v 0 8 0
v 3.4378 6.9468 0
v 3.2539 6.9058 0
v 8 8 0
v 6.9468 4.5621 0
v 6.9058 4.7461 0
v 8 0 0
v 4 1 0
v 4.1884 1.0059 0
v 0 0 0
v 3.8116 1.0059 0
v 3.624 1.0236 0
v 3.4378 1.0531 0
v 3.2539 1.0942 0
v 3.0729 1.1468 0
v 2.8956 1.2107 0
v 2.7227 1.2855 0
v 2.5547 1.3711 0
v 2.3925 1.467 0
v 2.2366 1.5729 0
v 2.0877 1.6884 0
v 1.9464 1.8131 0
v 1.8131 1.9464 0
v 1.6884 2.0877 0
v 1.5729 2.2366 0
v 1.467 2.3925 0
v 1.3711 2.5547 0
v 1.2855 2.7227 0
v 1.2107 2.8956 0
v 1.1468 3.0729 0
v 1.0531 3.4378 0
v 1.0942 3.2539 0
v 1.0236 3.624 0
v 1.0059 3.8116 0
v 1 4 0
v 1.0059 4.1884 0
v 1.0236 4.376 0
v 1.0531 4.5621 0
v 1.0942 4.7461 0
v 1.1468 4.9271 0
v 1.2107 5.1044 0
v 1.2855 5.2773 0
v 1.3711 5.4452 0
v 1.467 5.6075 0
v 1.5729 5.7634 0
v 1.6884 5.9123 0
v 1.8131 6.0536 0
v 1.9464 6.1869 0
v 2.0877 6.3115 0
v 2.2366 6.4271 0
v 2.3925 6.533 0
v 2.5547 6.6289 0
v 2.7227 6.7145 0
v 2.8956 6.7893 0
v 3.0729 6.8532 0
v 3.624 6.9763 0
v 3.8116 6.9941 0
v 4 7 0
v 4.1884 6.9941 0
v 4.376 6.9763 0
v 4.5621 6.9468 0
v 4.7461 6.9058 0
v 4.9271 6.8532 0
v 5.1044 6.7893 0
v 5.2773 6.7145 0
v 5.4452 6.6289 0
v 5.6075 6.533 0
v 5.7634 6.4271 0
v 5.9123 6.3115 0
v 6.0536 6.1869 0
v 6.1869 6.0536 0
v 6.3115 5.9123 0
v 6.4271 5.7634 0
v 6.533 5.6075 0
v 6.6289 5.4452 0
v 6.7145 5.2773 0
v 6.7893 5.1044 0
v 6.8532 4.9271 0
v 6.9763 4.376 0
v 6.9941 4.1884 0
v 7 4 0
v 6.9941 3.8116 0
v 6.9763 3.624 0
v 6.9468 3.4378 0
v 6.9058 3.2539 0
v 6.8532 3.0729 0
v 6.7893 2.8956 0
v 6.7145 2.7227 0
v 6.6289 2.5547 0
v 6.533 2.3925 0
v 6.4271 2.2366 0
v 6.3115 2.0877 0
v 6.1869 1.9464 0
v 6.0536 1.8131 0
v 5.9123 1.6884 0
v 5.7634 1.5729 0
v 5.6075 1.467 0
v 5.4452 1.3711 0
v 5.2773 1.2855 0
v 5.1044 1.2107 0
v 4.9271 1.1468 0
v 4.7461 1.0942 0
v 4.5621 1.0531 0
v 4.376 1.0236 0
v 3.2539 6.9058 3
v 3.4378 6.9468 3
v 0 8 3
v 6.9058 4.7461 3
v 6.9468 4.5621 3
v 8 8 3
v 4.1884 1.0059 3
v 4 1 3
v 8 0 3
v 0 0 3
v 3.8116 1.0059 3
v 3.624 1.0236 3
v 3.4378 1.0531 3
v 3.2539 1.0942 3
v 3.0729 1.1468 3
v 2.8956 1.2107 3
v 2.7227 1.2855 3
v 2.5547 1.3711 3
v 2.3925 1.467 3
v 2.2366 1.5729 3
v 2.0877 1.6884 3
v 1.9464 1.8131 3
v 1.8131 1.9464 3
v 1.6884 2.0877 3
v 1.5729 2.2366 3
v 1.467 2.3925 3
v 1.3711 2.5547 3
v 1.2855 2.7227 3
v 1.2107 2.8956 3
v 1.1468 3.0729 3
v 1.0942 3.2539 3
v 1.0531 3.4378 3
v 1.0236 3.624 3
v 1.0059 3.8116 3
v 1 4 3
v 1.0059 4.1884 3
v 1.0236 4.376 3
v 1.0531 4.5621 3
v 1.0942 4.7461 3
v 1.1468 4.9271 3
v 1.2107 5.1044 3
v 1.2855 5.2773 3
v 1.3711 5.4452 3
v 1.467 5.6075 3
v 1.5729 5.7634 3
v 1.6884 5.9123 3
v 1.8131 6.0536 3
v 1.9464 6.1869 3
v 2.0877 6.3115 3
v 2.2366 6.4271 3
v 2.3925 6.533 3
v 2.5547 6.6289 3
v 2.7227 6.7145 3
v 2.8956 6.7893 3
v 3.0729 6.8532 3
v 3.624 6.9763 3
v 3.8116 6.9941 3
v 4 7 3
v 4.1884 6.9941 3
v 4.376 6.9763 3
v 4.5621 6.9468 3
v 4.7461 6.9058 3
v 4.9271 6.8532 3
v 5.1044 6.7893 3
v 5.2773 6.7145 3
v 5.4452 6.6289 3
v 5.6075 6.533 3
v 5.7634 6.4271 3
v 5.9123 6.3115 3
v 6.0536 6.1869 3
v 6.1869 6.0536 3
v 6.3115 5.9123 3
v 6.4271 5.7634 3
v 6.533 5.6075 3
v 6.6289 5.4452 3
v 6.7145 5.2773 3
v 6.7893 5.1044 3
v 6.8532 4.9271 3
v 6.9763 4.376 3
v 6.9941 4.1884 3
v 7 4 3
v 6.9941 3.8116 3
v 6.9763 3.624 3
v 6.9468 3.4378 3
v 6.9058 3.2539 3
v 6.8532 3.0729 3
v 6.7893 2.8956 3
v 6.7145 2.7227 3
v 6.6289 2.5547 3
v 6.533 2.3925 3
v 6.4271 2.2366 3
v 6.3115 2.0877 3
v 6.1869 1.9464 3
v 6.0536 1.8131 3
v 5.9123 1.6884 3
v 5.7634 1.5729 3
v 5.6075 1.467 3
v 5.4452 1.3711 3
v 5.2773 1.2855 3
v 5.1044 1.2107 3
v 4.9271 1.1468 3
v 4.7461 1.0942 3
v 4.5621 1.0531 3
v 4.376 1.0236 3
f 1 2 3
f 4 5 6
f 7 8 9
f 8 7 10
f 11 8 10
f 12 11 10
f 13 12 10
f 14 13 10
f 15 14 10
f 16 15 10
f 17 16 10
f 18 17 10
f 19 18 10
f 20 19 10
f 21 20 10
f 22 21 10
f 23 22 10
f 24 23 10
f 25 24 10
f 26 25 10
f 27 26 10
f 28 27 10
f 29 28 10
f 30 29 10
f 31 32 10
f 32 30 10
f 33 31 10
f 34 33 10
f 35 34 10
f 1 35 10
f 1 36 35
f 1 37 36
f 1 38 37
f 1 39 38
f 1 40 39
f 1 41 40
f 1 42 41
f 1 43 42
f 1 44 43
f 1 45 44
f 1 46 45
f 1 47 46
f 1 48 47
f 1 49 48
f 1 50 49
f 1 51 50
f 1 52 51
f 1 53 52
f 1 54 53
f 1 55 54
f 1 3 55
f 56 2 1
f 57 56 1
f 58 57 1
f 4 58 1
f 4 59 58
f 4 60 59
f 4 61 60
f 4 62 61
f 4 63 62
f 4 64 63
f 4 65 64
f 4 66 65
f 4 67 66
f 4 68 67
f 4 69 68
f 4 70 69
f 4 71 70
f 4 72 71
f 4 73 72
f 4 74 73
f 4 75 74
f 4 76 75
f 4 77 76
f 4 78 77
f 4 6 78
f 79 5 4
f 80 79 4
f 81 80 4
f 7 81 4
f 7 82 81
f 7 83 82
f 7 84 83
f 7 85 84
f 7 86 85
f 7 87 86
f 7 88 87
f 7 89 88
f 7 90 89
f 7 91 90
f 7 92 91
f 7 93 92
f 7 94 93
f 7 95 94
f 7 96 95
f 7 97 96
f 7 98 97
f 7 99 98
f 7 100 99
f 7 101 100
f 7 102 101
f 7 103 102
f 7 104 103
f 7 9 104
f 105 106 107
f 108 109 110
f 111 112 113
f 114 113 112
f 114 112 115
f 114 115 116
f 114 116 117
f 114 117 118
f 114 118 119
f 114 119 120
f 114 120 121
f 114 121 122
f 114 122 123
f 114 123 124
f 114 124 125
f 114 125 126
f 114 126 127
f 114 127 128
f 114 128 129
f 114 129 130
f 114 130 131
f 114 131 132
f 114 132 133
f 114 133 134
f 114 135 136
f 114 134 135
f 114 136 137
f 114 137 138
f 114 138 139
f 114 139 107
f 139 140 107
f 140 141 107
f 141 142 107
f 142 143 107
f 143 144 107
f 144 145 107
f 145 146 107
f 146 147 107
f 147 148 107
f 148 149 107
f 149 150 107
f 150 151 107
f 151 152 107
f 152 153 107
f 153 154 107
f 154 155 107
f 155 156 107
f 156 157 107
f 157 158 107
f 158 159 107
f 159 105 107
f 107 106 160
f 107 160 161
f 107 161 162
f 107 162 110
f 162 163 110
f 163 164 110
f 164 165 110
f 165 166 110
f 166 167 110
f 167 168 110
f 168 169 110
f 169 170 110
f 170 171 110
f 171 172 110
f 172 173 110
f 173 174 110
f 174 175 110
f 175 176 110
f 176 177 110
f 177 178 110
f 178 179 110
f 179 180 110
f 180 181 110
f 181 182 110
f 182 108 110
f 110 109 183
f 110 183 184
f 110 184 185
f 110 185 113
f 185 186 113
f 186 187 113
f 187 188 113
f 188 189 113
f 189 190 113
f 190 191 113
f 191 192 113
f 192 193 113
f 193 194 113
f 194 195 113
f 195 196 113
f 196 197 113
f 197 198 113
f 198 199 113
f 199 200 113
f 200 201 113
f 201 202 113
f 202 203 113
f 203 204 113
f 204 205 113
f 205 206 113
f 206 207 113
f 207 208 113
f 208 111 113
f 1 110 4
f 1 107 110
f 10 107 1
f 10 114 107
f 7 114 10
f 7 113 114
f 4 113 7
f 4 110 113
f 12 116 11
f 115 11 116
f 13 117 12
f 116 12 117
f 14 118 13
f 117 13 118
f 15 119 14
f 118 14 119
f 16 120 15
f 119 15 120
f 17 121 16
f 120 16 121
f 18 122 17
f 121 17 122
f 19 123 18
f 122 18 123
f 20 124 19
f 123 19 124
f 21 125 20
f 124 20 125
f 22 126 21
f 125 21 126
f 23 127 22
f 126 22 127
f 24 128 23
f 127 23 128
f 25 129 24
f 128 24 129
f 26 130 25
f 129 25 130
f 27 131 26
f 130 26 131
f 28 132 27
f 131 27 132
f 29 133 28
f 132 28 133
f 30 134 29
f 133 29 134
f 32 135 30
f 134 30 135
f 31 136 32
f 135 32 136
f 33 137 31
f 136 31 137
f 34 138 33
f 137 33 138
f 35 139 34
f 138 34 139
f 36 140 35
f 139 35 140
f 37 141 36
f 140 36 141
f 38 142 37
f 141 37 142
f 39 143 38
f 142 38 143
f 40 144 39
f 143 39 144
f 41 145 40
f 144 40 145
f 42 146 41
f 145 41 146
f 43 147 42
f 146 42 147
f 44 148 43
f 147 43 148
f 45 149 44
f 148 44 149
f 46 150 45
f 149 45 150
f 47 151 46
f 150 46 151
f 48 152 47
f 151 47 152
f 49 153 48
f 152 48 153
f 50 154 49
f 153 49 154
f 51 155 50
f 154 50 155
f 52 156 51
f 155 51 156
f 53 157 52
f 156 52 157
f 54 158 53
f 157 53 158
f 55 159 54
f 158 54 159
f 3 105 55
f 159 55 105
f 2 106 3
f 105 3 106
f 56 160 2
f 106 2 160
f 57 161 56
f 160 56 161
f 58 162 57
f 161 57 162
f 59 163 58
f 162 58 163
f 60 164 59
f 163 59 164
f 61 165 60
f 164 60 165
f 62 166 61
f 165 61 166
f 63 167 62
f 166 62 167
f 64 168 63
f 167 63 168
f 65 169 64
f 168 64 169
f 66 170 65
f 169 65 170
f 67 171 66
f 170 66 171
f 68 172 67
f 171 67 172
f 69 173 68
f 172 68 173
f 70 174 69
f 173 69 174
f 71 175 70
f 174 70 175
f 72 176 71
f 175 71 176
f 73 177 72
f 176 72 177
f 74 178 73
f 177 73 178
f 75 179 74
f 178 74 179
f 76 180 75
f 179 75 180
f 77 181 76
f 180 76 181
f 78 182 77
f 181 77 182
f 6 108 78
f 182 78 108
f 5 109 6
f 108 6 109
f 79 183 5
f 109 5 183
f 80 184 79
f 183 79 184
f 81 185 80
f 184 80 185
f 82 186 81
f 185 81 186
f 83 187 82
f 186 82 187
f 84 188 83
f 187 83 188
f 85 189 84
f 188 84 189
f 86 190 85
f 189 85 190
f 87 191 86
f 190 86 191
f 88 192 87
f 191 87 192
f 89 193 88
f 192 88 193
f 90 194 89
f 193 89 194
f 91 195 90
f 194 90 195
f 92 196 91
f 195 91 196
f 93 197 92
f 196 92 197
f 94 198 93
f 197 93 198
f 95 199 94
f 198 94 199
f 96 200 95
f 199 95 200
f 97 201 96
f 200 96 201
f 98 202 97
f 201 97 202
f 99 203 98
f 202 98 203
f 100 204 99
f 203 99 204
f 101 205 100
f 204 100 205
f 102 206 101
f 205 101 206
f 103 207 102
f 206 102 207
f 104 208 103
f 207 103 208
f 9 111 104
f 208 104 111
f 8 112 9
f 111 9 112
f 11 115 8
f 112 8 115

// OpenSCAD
////////////////////////////
// SCALE TEST
// Check model is 8mm wide, with circle 6mm wide, 3mm high

linear_extrude(height=3)
    difference() {
        square([8,8]);
        translate([4,4,0])
            circle(r=3, $fn=100);
    }
